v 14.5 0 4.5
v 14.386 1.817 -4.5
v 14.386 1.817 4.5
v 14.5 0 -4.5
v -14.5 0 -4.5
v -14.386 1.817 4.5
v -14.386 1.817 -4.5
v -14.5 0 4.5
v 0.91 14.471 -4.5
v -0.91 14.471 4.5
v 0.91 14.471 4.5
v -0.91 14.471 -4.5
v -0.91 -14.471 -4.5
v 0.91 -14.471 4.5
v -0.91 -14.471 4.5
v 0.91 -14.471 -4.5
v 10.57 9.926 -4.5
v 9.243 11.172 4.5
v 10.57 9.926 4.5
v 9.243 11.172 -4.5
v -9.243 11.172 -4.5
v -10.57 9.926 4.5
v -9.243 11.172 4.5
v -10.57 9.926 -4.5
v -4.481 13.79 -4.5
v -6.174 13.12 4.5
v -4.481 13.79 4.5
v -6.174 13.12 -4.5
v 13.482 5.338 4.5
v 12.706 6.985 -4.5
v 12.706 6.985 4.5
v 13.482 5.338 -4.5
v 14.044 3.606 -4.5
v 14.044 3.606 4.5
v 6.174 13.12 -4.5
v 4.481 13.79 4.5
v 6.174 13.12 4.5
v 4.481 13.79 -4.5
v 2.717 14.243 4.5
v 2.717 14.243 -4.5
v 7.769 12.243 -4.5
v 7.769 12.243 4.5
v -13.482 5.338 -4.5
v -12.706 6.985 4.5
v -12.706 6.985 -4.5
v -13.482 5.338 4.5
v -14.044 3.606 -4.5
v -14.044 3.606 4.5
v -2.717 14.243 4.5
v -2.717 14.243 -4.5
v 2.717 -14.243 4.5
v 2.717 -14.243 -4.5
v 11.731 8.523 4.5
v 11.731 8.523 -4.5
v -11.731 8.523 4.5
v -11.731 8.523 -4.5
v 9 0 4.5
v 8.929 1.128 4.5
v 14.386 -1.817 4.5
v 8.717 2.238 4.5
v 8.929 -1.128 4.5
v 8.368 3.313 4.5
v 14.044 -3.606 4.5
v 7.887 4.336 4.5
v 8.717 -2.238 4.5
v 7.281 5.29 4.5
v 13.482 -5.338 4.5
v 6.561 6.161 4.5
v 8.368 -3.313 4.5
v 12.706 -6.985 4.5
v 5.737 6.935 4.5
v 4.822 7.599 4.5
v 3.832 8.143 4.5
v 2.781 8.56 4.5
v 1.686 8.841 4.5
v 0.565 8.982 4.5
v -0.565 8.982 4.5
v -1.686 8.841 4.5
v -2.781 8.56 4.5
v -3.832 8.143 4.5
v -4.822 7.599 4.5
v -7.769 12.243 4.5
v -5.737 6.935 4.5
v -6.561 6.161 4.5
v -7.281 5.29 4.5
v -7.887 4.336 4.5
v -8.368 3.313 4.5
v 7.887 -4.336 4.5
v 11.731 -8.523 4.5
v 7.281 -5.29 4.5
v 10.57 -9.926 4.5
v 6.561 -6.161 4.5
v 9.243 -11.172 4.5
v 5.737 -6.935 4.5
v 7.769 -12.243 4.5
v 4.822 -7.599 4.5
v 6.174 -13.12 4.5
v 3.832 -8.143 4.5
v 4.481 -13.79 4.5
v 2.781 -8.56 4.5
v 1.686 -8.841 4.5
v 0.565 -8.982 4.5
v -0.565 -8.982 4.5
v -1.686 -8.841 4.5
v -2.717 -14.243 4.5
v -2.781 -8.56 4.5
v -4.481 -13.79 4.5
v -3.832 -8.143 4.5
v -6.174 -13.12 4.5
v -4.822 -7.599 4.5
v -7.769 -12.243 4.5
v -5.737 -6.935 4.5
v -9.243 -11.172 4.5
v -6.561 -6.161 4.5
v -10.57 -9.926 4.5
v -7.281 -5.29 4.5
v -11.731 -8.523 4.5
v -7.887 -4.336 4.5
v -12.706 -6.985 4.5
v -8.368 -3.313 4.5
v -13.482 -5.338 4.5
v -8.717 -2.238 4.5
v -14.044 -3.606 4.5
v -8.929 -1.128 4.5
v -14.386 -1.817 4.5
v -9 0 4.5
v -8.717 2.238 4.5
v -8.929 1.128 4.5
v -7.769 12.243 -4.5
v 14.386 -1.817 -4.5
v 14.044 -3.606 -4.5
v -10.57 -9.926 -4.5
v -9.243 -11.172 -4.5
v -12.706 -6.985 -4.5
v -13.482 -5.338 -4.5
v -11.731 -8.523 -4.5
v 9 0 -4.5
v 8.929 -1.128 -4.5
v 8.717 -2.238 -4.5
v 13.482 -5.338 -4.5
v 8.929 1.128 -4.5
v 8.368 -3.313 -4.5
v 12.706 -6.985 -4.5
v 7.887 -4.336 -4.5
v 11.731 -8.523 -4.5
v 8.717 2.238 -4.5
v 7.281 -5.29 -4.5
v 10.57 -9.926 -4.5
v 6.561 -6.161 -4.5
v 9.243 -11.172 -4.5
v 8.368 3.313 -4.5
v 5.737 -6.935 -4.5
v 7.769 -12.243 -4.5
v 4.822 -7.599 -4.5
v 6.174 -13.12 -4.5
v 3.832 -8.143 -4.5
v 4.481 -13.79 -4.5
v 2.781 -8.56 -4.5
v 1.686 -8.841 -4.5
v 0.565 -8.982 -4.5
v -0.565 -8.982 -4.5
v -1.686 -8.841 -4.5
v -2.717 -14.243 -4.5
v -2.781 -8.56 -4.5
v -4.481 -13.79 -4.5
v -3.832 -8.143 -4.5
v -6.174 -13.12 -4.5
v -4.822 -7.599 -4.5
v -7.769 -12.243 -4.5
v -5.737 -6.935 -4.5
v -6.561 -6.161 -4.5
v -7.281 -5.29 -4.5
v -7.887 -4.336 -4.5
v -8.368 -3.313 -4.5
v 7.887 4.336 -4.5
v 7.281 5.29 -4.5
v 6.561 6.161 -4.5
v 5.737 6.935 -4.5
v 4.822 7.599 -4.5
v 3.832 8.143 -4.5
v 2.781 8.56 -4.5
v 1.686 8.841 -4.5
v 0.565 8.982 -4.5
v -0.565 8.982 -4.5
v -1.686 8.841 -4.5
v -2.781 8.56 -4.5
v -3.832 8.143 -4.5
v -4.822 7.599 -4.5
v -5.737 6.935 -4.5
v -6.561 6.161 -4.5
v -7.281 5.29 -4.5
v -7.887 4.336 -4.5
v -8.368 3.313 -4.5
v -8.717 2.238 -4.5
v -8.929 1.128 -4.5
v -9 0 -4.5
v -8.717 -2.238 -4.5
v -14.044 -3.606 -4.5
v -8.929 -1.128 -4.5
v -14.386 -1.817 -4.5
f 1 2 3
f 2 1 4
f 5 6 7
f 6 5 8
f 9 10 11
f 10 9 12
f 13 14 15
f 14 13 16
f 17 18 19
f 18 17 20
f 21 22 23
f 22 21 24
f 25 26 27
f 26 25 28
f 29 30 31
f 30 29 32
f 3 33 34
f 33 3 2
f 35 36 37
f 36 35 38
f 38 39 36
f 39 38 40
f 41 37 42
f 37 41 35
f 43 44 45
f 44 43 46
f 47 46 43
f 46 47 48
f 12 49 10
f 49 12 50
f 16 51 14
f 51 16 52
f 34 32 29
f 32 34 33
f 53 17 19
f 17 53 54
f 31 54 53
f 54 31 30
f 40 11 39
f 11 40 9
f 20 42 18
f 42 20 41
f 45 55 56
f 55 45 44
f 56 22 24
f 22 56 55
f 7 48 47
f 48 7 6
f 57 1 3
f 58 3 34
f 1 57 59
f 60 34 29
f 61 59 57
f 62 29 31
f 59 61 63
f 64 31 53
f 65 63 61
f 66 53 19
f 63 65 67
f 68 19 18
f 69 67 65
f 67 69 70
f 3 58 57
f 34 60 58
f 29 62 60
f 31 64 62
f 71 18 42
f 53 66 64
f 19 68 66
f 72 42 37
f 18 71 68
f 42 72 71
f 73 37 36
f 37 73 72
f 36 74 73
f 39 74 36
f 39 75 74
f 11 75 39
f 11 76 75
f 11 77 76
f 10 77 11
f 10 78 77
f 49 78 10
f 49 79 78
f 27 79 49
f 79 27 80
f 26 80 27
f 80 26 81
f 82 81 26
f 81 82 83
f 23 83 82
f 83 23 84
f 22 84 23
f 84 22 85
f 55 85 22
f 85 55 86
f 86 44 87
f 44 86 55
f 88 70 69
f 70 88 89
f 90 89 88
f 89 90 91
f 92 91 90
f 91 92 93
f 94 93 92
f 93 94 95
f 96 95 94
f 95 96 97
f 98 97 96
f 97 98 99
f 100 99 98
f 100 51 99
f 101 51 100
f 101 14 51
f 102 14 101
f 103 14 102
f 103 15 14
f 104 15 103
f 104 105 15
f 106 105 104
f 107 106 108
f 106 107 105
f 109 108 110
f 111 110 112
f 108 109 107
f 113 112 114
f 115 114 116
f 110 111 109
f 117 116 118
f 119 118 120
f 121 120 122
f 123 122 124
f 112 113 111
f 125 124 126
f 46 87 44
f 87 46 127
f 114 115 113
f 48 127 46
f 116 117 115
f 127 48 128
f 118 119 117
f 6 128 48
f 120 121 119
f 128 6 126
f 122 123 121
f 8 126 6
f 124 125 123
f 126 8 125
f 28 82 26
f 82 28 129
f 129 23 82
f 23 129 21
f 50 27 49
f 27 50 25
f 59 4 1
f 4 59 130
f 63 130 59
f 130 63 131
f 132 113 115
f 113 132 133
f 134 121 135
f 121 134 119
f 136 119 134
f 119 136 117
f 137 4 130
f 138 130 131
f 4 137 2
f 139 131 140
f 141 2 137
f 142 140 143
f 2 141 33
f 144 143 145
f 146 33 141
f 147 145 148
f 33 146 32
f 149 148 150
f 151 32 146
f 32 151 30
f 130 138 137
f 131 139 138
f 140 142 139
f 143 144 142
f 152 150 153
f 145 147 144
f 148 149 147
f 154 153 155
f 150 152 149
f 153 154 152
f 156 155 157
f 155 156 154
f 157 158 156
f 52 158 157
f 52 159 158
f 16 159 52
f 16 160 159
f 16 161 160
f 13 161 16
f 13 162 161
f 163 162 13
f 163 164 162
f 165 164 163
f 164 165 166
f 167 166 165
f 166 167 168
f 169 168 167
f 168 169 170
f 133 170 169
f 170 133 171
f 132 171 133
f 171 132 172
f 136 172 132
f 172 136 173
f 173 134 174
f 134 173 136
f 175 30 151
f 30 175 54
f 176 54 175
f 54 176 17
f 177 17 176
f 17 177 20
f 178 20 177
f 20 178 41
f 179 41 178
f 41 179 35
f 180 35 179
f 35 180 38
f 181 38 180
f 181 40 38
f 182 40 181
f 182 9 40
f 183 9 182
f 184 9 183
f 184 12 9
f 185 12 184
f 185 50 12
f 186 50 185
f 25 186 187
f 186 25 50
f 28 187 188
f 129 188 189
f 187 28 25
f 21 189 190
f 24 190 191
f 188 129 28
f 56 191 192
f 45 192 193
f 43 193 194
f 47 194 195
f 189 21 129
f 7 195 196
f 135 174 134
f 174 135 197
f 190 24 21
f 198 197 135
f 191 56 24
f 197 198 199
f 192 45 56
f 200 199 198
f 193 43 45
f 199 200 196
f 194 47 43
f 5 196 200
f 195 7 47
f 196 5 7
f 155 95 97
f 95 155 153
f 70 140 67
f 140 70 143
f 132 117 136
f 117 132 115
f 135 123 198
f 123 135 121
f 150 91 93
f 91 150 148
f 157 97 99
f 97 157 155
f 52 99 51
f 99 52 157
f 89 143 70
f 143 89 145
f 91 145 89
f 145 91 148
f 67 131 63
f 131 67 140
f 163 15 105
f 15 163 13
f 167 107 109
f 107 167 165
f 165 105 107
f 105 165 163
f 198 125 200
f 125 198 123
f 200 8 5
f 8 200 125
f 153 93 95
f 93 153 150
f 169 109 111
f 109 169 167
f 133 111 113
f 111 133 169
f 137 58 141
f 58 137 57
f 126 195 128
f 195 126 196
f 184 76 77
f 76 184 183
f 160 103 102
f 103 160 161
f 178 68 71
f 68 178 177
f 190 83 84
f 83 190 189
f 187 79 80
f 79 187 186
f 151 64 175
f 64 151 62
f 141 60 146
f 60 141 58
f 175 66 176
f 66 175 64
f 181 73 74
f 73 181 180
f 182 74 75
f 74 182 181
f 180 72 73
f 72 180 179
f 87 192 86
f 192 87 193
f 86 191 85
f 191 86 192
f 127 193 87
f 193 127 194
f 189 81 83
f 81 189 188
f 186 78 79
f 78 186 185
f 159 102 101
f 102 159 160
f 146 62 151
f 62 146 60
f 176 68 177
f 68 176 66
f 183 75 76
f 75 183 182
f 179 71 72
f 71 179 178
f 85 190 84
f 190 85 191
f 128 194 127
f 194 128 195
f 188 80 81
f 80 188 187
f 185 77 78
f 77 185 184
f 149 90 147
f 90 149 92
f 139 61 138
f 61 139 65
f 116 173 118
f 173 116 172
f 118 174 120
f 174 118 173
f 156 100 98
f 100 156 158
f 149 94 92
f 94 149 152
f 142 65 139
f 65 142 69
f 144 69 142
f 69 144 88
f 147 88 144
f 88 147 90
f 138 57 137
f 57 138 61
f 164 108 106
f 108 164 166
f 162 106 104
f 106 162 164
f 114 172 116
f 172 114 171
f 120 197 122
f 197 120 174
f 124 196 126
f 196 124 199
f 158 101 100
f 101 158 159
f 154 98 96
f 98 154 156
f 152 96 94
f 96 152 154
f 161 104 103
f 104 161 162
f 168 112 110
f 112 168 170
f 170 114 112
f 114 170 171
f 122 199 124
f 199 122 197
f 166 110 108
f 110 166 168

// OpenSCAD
$fn = 50;


difference() {
	union() {
		translate(v = [0, 0, -4.5000000000]) {
			cylinder(h = 9, r = 14.5000000000);
		}
	}
	union() {
		translate(v = [0, 0, -100.0000000000]) {
			cylinder(h = 200, r = 9);
		}
	}
}
